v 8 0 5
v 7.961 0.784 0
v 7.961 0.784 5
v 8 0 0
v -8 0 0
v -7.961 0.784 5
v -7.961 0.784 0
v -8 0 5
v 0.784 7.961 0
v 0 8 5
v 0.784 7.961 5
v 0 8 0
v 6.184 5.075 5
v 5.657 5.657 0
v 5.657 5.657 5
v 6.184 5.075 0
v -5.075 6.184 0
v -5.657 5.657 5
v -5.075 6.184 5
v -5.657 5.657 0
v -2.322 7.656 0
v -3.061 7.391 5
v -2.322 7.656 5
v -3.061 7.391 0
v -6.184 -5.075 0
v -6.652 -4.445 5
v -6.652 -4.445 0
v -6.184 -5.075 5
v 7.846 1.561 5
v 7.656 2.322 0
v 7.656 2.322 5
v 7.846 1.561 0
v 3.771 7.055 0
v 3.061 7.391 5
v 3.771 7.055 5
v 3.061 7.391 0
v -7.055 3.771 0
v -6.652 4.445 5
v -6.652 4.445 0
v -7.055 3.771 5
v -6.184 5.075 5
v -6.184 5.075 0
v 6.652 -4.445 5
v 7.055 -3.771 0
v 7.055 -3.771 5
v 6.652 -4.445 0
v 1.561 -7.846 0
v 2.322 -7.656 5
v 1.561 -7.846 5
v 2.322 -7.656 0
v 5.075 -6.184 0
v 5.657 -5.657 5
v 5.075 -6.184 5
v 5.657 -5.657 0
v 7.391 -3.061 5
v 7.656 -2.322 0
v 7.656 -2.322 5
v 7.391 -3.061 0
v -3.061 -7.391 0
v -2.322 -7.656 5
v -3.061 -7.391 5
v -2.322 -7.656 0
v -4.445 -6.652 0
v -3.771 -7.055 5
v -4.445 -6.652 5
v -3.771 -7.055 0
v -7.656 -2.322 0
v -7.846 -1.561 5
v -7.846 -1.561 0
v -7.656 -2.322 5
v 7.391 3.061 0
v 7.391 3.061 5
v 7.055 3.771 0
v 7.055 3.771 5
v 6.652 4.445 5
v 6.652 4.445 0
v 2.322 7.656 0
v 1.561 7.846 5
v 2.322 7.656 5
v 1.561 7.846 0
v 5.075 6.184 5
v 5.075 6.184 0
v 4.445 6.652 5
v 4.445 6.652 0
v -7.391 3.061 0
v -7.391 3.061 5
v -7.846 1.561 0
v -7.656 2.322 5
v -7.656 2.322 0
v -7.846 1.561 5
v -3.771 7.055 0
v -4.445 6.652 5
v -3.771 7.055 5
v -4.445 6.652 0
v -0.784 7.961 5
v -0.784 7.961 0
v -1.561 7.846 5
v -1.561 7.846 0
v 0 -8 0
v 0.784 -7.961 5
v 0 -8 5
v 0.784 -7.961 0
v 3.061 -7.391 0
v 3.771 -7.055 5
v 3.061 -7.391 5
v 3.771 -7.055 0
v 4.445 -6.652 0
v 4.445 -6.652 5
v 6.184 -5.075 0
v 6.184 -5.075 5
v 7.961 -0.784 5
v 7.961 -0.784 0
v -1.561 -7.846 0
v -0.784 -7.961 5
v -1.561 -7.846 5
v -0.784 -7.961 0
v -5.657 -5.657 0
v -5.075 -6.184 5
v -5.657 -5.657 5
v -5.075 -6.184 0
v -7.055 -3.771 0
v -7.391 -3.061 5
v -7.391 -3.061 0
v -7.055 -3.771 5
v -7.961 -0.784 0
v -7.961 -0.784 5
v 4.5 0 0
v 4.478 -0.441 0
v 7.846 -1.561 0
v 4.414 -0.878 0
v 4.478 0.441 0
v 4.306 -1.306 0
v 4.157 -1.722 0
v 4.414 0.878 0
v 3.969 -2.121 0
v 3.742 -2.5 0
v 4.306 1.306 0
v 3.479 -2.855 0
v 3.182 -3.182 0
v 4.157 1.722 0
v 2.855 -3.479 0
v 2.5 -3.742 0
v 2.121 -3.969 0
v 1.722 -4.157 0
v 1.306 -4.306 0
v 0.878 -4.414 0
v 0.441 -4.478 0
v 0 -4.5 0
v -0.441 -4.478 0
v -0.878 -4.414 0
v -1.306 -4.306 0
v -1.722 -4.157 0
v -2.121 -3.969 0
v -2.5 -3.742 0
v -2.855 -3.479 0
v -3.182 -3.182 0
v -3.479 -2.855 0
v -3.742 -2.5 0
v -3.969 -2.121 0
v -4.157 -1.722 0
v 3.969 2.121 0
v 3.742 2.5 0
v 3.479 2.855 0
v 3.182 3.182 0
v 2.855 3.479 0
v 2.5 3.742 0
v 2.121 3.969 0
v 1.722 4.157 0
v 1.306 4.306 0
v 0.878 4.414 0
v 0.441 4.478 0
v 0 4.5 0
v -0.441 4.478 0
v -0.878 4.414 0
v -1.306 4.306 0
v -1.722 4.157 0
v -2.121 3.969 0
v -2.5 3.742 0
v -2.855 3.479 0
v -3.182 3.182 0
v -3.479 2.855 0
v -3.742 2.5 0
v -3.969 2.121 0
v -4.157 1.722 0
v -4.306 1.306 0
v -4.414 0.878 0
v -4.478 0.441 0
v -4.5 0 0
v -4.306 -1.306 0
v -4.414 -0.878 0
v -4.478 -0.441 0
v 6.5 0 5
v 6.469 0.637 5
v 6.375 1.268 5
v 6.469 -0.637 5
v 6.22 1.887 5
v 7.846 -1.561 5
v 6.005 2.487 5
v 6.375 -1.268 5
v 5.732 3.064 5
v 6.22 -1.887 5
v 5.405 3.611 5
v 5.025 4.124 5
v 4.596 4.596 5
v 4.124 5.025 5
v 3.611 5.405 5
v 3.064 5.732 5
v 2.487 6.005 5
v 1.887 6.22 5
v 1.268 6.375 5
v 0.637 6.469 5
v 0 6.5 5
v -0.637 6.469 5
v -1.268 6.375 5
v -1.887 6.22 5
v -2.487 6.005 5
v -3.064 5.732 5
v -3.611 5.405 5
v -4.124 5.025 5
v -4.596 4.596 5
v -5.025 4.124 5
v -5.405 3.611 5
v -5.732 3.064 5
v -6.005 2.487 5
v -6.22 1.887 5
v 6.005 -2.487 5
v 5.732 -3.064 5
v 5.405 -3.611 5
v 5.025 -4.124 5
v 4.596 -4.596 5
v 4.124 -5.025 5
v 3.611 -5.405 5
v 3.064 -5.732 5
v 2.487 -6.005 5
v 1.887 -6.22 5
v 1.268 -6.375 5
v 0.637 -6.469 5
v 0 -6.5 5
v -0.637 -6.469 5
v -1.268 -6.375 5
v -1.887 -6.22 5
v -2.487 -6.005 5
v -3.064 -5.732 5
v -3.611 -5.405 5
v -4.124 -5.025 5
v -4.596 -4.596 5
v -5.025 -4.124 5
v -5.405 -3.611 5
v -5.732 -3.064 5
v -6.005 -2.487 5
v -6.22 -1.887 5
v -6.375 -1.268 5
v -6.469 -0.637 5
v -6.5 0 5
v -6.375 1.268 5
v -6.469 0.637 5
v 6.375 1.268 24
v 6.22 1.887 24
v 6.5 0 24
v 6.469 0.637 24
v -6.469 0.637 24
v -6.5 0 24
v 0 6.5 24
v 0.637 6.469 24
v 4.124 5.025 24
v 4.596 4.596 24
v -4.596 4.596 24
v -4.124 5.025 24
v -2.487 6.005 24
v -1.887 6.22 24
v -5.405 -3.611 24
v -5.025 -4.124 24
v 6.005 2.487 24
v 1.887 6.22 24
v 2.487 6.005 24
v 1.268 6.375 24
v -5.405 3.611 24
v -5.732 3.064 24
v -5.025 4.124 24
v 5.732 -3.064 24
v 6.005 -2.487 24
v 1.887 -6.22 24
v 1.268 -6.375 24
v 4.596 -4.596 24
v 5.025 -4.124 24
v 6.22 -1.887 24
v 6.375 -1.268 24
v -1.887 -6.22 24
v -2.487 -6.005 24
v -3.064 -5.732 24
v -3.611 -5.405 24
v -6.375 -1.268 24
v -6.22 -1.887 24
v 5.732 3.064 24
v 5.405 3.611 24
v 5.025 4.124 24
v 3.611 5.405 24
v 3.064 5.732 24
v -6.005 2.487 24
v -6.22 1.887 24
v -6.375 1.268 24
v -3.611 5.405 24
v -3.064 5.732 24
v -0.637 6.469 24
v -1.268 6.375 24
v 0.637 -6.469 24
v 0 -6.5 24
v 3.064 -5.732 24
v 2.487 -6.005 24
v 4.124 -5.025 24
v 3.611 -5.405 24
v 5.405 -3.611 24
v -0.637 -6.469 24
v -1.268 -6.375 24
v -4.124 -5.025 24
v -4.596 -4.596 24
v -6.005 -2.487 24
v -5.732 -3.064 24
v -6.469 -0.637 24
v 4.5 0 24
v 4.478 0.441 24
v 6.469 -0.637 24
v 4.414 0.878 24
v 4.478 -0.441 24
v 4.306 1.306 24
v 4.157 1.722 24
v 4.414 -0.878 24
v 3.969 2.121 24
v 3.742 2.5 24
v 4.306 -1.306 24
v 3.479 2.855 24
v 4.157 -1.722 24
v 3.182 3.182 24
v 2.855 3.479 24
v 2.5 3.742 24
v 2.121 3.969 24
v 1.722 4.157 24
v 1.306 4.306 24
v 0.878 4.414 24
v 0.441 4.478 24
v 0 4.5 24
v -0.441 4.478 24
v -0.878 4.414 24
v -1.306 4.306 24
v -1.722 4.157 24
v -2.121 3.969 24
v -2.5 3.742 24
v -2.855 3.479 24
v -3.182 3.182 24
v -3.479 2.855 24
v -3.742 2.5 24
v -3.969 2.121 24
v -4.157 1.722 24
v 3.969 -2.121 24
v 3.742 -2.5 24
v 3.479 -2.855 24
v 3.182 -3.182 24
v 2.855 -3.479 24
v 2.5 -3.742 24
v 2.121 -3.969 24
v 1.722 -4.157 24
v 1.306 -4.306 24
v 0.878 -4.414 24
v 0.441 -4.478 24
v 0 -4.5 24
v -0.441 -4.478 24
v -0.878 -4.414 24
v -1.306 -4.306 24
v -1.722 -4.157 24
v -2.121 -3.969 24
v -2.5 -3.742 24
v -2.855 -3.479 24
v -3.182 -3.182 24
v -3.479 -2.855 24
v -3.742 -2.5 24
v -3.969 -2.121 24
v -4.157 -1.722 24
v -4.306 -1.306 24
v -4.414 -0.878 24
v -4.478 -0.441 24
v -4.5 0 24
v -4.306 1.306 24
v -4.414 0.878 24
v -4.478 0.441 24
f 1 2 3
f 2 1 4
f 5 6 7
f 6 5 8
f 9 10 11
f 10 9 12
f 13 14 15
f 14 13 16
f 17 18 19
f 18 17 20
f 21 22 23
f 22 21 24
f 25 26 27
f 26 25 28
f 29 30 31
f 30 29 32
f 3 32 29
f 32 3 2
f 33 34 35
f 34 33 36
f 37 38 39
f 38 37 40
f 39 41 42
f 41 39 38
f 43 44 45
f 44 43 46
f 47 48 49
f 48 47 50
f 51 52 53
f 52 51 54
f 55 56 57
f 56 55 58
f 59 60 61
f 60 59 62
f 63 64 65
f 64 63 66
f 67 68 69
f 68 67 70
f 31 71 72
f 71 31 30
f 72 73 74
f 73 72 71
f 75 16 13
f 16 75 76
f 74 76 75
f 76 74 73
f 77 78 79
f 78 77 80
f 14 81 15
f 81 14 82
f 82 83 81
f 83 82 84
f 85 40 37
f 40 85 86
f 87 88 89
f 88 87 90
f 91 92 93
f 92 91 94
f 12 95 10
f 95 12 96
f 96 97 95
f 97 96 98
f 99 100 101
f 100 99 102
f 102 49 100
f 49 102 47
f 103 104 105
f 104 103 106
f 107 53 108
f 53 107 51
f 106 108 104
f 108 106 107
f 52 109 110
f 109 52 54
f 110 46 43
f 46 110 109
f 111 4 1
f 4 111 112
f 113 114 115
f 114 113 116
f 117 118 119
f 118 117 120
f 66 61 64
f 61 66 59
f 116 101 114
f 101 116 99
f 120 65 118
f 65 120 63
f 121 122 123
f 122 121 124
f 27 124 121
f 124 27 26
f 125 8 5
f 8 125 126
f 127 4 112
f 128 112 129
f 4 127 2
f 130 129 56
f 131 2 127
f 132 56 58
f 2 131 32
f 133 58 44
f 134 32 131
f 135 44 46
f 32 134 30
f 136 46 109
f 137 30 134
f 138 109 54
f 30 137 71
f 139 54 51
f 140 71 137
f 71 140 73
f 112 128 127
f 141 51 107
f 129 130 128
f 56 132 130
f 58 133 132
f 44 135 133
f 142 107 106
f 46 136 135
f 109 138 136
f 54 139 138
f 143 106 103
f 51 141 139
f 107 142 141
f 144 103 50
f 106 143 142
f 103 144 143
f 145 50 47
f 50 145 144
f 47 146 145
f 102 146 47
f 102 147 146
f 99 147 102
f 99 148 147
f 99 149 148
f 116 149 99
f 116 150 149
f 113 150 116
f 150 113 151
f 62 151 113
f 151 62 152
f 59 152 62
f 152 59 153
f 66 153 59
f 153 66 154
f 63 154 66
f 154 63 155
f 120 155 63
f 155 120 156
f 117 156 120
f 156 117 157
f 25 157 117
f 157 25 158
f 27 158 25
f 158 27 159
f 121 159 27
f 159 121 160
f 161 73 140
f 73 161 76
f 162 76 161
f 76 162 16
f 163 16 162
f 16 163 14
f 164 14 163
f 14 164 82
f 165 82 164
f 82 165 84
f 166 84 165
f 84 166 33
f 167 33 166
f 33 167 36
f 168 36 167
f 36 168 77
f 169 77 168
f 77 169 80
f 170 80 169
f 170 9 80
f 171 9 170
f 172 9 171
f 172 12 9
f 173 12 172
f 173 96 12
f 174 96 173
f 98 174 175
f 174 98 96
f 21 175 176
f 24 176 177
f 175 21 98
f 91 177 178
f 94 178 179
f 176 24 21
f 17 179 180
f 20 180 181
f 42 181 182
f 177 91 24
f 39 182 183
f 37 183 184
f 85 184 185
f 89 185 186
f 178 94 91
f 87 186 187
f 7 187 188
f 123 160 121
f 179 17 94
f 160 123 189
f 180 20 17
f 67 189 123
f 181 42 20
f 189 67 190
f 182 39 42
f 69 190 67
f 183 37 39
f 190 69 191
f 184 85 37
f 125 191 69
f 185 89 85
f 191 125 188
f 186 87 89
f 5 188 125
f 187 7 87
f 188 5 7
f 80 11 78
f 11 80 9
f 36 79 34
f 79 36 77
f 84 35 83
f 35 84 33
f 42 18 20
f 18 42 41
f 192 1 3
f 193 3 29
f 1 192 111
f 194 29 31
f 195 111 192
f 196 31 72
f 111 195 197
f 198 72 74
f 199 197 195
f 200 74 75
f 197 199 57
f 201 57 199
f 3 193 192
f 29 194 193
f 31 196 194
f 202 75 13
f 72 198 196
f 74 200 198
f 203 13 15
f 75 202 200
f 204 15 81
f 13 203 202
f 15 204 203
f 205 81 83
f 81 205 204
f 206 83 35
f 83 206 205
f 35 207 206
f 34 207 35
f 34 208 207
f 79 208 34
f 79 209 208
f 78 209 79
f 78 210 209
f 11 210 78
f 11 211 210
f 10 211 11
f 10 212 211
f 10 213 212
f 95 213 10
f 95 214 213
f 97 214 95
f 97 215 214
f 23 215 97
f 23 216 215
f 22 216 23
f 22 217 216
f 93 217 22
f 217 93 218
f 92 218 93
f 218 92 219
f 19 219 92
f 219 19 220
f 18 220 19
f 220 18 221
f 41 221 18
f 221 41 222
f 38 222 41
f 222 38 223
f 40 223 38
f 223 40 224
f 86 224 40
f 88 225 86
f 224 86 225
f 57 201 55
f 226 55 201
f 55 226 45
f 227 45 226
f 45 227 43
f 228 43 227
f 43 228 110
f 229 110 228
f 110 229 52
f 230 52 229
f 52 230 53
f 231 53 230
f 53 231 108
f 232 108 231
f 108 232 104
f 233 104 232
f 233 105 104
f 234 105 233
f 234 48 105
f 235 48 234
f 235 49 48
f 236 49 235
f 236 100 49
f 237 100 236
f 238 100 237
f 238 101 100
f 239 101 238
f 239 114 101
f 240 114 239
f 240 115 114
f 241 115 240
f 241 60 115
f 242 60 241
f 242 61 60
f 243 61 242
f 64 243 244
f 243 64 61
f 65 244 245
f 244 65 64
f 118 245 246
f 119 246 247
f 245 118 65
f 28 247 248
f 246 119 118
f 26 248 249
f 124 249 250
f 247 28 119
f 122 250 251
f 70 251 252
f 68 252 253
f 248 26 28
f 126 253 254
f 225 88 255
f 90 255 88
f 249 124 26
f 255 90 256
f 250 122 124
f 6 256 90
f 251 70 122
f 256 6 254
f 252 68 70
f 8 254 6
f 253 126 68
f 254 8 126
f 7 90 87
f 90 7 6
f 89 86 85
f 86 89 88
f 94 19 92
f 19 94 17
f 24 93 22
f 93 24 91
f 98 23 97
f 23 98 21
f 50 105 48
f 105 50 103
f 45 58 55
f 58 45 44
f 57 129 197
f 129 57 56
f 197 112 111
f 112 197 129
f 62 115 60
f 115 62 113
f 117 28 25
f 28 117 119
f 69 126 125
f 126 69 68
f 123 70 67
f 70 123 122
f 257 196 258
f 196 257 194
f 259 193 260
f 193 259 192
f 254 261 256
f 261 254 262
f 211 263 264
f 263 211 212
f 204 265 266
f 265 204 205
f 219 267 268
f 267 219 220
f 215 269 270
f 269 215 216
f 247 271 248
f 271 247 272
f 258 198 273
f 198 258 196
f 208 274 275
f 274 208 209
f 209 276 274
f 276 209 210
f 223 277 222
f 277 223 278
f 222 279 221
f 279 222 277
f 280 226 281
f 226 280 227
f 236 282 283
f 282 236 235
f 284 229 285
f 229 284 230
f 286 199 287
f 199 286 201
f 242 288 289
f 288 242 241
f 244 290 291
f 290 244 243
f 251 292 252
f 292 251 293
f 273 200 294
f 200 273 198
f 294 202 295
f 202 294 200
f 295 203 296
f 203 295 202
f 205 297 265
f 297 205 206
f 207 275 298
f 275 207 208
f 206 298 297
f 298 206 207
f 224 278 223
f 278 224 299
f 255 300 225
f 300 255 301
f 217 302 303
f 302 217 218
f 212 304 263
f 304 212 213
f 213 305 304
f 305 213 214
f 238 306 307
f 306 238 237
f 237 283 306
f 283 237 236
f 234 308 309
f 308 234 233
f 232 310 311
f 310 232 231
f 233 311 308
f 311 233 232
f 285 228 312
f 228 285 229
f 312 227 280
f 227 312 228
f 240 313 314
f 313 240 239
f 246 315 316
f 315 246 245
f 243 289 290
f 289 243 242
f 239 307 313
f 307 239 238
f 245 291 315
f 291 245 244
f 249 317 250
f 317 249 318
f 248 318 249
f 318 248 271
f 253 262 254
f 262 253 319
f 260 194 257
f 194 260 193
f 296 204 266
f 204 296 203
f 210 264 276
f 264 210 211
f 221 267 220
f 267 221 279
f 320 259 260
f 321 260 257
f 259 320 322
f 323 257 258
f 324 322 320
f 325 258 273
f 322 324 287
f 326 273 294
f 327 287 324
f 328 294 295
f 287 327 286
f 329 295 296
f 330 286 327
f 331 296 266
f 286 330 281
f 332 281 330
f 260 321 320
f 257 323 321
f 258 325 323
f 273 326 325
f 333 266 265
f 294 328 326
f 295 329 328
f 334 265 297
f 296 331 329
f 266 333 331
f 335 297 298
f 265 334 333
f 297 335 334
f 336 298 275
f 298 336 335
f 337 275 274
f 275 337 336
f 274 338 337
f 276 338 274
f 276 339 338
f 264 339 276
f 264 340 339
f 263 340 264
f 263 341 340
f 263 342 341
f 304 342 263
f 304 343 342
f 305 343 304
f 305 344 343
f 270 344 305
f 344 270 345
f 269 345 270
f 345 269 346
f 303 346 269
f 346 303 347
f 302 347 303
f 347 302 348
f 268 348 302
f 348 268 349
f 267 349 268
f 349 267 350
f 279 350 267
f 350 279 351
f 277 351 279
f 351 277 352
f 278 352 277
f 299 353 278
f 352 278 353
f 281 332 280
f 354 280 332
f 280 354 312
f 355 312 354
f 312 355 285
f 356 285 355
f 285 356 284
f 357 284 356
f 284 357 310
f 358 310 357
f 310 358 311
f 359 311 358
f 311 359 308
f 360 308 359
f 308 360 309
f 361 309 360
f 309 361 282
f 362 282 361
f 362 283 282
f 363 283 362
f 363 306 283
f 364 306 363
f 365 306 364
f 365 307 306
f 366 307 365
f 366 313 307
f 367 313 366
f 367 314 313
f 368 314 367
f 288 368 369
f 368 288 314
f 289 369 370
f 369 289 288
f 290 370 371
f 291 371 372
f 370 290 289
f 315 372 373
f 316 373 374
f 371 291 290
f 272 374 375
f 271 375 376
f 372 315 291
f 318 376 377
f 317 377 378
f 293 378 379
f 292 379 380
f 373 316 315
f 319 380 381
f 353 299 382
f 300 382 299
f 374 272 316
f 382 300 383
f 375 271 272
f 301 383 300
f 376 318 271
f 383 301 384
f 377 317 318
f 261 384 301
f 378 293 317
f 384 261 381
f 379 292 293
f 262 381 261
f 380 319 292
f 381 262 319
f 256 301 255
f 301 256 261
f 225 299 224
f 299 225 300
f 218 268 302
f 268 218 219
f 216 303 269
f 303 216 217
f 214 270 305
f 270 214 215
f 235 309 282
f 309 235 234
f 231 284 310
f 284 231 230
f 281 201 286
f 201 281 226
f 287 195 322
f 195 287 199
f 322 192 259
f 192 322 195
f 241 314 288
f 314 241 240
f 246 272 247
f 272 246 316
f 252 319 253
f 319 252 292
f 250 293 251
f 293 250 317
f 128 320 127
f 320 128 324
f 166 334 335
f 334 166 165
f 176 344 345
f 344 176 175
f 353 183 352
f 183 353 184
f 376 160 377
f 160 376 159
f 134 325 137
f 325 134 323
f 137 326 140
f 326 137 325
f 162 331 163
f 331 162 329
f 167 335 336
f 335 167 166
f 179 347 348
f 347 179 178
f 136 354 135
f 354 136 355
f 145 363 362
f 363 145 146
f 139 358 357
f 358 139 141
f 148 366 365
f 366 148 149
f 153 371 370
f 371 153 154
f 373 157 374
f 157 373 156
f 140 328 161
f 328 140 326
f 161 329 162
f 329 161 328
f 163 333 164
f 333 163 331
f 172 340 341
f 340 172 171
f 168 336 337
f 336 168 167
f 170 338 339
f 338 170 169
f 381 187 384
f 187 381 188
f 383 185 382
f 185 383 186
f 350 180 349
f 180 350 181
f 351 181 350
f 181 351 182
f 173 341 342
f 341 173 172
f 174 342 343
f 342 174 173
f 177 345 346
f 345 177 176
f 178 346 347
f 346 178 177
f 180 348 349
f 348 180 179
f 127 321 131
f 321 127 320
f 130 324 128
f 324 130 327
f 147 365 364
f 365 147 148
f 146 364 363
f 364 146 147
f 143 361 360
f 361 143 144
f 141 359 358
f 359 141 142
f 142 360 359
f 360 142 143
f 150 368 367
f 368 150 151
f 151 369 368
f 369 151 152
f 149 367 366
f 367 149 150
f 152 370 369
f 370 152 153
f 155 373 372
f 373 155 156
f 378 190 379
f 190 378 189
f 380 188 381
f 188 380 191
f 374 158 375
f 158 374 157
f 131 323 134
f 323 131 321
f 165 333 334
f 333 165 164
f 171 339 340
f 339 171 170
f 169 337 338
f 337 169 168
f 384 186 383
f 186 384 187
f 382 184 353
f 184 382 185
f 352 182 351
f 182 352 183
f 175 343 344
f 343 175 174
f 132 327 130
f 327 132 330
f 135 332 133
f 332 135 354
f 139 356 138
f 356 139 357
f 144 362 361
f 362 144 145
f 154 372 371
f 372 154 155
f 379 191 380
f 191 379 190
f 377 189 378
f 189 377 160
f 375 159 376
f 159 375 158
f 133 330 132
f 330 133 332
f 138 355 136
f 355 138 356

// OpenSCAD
// Smoothness of the cylinders
$fn = 64; 

difference() {
    // First Cylinder: OD=16, ID=11, H=5
    union()  {
        cylinder(h=5, d=16); // Outer
        translate([0, 0, 5]) {
            cylinder(h=19, d=13); // Inner (slightly taller to ensure clean cut)
        }
    }

     translate([0, 0, -1]) 
        cylinder(h=27, d=9); // Inner (slightly taller to ensure clean cut)
}
